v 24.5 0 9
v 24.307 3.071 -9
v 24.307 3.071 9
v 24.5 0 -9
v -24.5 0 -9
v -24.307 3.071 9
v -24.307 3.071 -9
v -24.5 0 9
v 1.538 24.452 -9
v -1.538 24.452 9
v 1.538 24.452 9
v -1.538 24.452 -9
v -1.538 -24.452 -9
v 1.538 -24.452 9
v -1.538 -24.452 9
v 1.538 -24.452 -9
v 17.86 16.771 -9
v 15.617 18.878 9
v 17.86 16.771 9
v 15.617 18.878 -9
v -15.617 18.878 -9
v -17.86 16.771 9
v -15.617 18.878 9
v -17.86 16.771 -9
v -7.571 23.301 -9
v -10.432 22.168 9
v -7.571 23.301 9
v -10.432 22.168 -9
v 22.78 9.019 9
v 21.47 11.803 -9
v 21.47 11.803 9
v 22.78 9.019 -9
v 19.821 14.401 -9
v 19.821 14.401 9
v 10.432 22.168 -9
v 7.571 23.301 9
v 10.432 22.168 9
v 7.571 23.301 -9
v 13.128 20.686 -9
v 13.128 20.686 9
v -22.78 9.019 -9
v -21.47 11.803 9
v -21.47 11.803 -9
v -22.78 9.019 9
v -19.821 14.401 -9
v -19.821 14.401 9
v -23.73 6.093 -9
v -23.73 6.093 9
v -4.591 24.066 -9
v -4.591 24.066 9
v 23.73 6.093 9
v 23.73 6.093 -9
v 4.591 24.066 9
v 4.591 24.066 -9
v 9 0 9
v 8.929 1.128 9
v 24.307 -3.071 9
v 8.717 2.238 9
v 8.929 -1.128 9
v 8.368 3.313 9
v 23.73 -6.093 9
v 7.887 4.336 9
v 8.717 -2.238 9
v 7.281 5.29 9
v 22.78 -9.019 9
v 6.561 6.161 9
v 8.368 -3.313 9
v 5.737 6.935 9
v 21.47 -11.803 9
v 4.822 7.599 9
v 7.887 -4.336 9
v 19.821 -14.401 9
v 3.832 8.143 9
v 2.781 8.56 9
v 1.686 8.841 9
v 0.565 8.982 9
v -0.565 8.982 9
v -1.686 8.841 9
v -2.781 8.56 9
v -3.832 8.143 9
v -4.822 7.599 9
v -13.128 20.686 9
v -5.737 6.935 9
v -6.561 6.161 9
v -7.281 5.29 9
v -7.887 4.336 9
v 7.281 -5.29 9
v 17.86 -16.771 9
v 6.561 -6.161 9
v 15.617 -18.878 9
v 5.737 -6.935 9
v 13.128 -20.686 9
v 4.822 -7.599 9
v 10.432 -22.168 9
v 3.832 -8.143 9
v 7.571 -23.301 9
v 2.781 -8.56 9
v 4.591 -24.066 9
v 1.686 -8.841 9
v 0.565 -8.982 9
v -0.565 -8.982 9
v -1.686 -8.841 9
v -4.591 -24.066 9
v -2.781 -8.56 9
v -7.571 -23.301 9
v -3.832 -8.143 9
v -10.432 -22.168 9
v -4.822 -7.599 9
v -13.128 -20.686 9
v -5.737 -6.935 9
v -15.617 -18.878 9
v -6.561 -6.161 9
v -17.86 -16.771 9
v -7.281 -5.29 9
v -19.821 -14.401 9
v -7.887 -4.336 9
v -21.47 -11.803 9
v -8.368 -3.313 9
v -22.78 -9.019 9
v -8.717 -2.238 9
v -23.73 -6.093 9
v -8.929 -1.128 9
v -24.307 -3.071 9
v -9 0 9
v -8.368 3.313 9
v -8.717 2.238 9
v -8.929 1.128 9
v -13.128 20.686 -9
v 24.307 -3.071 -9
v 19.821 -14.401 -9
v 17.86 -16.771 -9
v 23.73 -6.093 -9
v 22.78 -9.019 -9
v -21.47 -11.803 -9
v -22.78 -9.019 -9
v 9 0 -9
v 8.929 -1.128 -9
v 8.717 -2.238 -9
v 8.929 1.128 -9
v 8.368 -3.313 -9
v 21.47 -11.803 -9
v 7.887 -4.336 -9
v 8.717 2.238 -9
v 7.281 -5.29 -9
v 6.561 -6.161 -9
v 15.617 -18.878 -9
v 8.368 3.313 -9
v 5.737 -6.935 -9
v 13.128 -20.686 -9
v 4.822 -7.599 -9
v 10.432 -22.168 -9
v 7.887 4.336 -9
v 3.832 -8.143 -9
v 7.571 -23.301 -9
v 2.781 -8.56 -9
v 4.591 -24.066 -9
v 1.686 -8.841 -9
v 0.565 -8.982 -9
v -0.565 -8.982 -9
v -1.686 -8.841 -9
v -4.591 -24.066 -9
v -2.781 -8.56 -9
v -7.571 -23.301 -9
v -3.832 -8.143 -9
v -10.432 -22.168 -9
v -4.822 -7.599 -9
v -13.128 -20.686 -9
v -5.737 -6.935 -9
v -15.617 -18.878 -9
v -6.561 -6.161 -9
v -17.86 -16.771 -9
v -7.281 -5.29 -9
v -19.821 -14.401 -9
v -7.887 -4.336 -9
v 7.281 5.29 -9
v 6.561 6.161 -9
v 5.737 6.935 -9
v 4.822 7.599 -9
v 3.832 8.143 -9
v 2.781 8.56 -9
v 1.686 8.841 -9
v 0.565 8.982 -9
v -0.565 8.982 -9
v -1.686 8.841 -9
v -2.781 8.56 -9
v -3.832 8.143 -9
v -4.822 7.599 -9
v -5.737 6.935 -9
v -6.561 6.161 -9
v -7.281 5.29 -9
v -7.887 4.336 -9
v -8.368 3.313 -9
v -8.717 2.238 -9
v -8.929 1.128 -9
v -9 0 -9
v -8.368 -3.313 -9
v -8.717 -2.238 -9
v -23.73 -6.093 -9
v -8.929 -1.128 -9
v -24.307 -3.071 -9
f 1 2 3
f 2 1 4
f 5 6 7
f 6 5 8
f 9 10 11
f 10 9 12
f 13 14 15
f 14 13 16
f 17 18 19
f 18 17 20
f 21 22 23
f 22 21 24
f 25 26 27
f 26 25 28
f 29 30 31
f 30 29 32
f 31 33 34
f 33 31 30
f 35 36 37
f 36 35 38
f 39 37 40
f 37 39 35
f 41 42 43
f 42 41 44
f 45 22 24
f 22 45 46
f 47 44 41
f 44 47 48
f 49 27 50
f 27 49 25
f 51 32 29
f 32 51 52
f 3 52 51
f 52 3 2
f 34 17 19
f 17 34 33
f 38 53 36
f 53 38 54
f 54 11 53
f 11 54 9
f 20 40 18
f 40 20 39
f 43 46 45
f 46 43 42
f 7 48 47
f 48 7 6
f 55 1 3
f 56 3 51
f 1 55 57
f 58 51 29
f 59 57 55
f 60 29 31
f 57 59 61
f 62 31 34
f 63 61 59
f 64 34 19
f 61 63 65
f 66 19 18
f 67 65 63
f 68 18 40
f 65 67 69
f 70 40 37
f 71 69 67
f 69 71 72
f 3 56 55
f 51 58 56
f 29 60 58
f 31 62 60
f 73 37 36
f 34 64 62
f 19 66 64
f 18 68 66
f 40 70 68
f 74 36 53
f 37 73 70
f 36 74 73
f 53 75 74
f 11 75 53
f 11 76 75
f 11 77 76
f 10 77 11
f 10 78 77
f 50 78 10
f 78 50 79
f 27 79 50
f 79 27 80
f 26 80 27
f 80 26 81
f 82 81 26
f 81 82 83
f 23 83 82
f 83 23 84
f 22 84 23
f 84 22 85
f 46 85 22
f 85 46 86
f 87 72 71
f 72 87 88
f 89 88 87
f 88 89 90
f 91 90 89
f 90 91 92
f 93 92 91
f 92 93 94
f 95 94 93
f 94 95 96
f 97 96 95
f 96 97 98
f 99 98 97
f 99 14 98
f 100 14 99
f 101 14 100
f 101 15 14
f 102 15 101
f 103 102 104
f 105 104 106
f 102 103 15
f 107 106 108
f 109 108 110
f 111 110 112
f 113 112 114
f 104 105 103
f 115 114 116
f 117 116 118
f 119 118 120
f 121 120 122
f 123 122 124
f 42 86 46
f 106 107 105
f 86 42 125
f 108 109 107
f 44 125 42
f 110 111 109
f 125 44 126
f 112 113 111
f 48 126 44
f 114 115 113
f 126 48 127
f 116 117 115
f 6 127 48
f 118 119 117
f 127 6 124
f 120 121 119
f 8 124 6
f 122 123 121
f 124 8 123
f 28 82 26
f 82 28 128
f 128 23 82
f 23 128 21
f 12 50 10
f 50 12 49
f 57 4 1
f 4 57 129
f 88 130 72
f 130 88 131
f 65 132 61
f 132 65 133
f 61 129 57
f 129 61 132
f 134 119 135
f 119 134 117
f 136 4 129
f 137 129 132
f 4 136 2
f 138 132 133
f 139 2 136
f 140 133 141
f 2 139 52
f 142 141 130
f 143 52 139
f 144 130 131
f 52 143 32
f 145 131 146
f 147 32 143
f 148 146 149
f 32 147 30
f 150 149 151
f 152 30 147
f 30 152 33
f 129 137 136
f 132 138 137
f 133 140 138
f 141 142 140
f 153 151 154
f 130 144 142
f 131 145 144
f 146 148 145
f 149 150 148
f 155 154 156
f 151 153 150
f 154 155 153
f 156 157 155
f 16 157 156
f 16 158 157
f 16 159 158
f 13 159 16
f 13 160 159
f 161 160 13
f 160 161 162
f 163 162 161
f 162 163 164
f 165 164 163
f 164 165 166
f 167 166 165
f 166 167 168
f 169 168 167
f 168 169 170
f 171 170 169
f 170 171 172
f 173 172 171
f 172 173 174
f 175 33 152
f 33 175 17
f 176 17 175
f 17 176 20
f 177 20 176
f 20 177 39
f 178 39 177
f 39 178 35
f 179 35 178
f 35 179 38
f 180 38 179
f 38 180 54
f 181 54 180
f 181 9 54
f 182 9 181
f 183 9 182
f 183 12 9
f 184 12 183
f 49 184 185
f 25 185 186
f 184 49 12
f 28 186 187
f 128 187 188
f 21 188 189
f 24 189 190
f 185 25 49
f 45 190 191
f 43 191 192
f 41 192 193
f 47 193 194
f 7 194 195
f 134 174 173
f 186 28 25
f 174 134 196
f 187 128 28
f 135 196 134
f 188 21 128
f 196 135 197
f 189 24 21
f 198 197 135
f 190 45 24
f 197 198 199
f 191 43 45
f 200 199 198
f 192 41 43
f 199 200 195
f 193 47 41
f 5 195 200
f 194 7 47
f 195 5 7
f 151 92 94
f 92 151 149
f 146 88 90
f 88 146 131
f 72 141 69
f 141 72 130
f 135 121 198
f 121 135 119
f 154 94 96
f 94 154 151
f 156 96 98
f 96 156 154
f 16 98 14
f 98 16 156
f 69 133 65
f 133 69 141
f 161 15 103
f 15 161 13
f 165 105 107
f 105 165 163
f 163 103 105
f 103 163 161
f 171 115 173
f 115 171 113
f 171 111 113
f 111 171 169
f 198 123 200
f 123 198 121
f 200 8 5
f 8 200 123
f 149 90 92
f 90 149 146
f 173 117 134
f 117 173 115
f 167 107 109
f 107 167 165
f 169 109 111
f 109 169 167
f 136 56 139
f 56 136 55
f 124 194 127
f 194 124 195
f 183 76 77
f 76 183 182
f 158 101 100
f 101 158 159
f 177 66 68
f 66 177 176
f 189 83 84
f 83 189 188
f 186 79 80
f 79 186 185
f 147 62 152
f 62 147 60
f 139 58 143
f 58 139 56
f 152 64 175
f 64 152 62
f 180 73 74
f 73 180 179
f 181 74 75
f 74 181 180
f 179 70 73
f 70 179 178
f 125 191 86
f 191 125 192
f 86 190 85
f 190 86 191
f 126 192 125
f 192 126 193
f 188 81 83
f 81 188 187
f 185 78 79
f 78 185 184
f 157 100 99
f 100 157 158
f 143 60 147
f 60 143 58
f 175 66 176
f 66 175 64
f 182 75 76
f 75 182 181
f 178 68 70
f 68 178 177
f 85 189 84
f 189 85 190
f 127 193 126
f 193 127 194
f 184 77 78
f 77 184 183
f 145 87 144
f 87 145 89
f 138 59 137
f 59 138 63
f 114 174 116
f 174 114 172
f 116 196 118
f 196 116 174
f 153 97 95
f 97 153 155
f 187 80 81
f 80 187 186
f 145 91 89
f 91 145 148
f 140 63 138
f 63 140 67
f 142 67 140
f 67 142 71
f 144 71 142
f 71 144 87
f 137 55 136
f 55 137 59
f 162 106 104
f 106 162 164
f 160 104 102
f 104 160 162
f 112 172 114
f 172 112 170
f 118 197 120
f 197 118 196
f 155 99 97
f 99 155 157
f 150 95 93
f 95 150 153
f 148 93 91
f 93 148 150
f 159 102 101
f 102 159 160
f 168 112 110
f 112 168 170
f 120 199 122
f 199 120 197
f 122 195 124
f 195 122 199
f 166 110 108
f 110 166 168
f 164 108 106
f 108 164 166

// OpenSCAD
$fn = 50;


difference() {
	union() {
		translate(v = [0, 0, -9.0000000000]) {
			cylinder(h = 18, r = 24.5000000000);
		}
	}
	union() {
		translate(v = [0, 0, -100.0000000000]) {
			cylinder(h = 200, r = 9);
		}
	}
}
